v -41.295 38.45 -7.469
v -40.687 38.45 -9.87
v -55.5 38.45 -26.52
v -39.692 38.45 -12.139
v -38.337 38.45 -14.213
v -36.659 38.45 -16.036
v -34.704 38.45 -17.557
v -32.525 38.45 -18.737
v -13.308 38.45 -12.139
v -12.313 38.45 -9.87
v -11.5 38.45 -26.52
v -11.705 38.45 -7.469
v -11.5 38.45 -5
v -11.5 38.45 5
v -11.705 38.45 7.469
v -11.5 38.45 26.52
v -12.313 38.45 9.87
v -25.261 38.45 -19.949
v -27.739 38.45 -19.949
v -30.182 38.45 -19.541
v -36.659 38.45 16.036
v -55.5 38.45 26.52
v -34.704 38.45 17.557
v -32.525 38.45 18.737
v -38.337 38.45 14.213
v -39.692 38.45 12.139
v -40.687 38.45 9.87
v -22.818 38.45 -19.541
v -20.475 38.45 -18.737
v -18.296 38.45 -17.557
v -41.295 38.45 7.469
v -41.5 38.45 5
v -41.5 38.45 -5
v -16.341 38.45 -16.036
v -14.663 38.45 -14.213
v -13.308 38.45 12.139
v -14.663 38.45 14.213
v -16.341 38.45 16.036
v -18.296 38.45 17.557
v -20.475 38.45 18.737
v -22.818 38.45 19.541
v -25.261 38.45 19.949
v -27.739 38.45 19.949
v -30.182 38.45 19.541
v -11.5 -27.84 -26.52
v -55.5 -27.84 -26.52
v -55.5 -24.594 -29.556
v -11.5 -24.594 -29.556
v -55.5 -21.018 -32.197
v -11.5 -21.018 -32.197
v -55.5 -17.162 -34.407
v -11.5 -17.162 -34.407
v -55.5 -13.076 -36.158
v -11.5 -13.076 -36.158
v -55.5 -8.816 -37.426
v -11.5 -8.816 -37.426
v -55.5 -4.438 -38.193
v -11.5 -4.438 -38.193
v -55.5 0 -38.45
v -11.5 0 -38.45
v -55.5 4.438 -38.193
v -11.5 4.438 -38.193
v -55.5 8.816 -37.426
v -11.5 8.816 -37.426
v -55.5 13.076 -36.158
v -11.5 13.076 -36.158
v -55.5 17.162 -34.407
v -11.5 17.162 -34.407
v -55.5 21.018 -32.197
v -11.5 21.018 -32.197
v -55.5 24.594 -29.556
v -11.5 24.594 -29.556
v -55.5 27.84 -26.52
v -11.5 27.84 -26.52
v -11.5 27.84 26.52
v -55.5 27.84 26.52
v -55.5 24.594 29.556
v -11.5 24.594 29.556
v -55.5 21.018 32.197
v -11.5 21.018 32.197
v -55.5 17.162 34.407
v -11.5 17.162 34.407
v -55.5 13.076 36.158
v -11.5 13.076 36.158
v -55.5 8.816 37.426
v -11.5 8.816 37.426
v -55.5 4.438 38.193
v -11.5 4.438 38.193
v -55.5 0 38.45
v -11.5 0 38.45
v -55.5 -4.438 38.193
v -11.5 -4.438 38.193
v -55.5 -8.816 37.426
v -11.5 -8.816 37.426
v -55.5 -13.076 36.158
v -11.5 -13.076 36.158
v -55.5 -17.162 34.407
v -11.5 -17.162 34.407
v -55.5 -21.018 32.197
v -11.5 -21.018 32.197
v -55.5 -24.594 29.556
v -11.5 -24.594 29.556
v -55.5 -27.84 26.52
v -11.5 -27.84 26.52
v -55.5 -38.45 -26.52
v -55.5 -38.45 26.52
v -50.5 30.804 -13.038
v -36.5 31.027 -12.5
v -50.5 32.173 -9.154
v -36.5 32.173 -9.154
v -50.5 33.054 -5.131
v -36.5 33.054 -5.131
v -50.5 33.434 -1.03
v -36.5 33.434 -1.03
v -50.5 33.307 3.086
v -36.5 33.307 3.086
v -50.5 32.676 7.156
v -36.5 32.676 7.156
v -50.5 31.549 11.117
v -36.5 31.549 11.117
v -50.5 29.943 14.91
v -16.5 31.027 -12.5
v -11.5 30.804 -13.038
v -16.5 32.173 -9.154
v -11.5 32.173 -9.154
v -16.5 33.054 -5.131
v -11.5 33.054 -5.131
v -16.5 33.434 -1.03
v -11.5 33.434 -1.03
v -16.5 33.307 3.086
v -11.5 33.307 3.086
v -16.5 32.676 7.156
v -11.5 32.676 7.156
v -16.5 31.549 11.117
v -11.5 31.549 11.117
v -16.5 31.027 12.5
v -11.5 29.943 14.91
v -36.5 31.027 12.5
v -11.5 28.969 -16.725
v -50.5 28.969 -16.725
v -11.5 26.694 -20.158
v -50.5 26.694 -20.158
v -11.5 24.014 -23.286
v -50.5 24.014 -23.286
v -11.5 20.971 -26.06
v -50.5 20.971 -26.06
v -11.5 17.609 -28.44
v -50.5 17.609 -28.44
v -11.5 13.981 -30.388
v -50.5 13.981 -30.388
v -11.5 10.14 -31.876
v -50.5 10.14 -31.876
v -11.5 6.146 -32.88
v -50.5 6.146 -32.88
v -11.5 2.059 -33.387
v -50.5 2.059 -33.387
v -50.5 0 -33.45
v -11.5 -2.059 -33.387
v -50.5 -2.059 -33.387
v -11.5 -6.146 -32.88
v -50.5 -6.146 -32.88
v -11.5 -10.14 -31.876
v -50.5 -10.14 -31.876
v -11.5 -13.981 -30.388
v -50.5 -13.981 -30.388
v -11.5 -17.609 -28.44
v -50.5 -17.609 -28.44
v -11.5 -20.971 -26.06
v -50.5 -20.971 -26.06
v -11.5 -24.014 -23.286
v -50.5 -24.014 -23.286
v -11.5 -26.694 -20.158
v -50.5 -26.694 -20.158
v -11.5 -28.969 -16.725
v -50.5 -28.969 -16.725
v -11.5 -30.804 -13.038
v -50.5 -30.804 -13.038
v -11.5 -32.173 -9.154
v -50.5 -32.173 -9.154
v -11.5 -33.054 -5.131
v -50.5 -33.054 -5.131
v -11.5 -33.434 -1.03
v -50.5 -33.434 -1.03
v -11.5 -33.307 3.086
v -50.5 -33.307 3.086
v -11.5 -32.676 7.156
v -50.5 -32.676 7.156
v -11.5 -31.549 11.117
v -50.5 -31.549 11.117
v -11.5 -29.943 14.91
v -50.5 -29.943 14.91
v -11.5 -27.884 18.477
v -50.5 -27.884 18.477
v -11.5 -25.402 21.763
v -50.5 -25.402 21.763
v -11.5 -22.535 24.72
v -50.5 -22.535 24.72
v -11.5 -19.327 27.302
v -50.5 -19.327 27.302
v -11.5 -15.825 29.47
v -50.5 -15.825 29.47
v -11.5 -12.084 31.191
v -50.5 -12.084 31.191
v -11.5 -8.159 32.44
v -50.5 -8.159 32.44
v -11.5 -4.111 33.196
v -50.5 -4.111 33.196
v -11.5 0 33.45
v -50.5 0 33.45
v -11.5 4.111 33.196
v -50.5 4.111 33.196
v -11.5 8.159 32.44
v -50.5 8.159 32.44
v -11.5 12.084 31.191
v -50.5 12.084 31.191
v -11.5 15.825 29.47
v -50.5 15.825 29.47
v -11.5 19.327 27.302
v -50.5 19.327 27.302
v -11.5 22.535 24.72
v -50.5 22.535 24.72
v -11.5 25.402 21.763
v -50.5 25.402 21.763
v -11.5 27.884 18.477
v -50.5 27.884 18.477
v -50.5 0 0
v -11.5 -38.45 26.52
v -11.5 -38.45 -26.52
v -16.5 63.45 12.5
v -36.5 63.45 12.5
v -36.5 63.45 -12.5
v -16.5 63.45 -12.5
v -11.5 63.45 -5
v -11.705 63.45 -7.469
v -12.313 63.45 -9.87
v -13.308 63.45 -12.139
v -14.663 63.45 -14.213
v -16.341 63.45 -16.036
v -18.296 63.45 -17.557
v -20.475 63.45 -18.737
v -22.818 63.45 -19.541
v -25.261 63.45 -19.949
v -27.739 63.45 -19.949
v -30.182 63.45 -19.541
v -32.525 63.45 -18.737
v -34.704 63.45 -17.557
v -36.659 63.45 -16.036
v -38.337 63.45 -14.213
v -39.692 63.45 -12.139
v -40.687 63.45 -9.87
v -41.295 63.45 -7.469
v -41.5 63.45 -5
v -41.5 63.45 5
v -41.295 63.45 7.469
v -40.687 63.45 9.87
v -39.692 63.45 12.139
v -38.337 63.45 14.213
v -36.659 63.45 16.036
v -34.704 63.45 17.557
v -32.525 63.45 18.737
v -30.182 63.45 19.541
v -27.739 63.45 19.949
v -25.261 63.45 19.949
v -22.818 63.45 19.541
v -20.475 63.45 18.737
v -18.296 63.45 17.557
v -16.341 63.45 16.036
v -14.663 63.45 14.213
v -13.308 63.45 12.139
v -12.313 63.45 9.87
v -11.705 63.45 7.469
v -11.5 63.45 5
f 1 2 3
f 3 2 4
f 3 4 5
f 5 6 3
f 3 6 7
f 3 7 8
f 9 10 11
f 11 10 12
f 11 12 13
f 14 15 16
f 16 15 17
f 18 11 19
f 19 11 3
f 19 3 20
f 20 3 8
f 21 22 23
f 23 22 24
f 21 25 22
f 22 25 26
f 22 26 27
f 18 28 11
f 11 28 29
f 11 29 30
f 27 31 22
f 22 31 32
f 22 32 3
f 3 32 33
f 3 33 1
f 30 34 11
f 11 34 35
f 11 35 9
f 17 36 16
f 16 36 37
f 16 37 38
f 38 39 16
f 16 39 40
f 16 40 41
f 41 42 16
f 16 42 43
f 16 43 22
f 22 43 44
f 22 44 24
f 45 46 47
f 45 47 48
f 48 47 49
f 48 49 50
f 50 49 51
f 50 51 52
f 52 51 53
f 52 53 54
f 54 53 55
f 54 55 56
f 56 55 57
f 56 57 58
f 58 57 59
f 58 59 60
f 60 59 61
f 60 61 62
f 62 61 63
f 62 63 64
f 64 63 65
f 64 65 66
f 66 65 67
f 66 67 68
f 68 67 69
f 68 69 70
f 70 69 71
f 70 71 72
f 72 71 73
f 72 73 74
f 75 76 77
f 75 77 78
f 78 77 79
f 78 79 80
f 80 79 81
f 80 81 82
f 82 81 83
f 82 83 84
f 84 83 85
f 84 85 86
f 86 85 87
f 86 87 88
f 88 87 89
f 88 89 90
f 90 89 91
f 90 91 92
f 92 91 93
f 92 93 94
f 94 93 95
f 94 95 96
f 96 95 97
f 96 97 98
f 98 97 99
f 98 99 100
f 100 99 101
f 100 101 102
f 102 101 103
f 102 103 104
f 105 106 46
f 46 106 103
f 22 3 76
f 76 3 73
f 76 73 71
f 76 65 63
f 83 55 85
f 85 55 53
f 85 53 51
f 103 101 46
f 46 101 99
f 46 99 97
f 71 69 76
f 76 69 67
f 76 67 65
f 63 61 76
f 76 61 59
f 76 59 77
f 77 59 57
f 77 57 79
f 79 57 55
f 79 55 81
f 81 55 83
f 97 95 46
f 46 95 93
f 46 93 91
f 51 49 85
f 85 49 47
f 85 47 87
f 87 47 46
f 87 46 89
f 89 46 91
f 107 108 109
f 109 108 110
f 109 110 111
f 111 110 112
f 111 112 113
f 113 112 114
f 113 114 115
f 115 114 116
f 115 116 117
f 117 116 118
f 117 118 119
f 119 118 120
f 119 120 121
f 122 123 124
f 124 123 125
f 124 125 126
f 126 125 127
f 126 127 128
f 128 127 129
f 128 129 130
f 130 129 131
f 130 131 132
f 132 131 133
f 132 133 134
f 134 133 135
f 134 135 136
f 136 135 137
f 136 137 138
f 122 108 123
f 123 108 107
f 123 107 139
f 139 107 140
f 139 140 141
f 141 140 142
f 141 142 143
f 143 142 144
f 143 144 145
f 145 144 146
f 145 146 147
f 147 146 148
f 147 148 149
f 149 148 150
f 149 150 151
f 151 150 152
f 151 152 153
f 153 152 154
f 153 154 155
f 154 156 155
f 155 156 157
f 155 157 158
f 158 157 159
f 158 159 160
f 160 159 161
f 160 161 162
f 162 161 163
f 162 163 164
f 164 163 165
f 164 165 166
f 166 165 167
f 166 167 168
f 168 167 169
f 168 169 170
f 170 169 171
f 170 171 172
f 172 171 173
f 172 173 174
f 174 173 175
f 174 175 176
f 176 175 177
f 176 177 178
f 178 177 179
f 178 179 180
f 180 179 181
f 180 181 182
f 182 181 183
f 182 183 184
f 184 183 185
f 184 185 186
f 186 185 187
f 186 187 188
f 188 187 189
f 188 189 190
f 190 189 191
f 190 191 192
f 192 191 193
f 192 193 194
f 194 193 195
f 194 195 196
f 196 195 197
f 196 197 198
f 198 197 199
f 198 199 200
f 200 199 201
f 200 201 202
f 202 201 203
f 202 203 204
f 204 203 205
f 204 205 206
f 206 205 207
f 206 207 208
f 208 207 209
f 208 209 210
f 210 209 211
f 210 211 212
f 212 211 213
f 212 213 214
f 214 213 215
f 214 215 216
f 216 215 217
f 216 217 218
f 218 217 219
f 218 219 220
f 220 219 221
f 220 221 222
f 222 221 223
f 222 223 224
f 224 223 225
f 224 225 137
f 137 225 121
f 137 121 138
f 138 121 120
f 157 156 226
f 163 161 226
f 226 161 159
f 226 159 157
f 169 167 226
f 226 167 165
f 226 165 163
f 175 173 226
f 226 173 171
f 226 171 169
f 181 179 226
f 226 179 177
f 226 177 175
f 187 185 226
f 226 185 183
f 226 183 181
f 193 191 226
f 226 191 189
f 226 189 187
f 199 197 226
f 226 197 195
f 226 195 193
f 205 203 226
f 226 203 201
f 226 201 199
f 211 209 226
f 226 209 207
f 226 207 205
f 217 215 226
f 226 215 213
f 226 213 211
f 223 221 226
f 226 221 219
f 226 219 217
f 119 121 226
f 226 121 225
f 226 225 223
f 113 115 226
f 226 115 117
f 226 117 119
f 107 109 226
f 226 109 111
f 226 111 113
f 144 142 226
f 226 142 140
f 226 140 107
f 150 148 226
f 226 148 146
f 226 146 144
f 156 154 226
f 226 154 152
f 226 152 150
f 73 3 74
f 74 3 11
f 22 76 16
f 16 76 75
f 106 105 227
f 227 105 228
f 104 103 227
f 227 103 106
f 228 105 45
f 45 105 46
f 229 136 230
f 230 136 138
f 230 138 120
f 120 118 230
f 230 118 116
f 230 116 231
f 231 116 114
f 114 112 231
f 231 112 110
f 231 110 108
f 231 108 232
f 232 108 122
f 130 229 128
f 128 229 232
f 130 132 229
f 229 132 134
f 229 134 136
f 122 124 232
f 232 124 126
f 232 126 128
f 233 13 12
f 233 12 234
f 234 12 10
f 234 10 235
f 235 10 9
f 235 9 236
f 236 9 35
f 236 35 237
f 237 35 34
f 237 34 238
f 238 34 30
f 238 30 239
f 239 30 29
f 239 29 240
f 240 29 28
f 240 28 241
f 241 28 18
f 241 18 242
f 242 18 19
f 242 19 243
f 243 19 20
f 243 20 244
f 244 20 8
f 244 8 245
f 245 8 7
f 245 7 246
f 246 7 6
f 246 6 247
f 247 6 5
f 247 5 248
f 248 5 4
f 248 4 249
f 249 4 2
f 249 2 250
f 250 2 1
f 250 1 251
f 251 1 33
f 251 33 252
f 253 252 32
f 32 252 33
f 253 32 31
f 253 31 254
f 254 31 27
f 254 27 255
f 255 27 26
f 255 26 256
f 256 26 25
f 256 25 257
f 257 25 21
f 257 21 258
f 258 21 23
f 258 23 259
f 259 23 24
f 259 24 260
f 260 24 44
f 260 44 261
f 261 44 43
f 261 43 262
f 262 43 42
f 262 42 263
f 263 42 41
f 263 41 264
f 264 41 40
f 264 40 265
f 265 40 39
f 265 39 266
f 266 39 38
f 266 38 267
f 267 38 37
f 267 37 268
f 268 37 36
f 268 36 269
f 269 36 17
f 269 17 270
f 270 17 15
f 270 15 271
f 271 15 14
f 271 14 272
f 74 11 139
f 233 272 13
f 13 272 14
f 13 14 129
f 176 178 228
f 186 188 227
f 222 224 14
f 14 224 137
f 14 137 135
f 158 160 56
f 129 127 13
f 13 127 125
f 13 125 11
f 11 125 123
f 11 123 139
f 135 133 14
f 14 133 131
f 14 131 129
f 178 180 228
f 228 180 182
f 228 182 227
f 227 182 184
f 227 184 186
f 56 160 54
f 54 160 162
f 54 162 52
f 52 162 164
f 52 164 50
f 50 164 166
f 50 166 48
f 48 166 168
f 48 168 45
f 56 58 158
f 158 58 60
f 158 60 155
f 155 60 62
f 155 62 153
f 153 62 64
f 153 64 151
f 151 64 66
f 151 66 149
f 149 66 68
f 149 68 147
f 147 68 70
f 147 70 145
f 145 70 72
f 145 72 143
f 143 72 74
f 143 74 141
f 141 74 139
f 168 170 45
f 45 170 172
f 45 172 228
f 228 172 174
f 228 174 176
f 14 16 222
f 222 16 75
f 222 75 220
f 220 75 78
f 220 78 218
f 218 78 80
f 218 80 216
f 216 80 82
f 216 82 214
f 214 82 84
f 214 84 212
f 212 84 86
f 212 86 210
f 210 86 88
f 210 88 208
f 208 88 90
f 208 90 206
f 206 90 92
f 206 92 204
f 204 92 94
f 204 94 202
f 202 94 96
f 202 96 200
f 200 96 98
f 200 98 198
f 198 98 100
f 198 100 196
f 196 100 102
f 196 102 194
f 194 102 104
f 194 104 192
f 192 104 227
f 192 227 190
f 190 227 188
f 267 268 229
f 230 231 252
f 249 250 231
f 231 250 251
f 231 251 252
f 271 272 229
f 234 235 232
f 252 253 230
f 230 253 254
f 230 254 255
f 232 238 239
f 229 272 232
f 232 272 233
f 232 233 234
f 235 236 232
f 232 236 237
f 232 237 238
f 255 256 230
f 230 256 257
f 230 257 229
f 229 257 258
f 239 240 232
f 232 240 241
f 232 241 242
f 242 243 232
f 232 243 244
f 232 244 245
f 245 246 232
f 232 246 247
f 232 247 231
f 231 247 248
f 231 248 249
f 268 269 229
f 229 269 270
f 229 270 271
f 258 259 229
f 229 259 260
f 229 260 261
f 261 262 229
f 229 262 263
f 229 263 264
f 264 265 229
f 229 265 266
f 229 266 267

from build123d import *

# Parameters (mm, degrees)
SKETCH1_R                = 38.45
BOSS_EXTRUDE1_DEPTH      = 55.5
SHELL1_T                 = -5
BOSS_EXTRUDE2_REACH      = 104.334
BOSS_EXTRUDE2_END_RADIUS = 38.45
SKETCH2_W                = 111
SKETCH2_H                = 53.04
CUT_EXTRUDE1_REACH       = 104.334
CUT_EXTRUDE1_END_RADIUS  = 33.45
SKETCH3_W                = 20
SKETCH3_H                = 25
BOSS_EXTRUDE5_DEPTH      = 25
CUT_EXTRUDE2_REACH       = 124.239
SKETCH6_W                = 20
SKETCH6_H                = 25
CUT_EXTRUDE3_DEPTH       = 103.334073016
CUT_EXTRUDE3_DEPTH_BACK  = 103.334073016
SKETCH7_W                = 67
SKETCH7_H                = 76.9


with BuildPart() as part:
    # Sketch1 → Boss-Extrude1 (new, symmetric)
    with BuildSketch(Plane(origin=(0, 0, 0), x_dir=(0, 0, -1), z_dir=(1, 0, 0))):
        Circle(SKETCH1_R)
    extrude(amount=BOSS_EXTRUDE1_DEPTH, both=True)

    # Shell1
    shell1_openings = [part.faces().sort_by_distance(p)[0] for p in [
        (55.5, 0, 0),
    ]]
    offset(amount=SHELL1_T, openings=shell1_openings, kind=Kind.INTERSECTION)

    # Boss-Extrude2: up to this cylinder (the profile starts outside it)
    boss_extrude2_end = Plane(origin=(0, 0, 0), z_dir=(-1, 0, 0)) * Cylinder(BOSS_EXTRUDE2_END_RADIUS, 286.568, mode=Mode.PRIVATE)
    # Sketch2 → Boss-Extrude2 (add, up to the surface)
    with BuildSketch(Plane(origin=(0, 38.45, 0), x_dir=(1, 0, 0), z_dir=(0, 1, 0)), mode=Mode.PRIVATE) as boss_extrude2_sk1:
        Rectangle(SKETCH2_W, SKETCH2_H)
    boss_extrude2_tool1 = extrude(boss_extrude2_sk1.sketch, amount=-BOSS_EXTRUDE2_REACH, mode=Mode.PRIVATE) - boss_extrude2_end
    boss_extrude2 = boss_extrude2_tool1.solids().sort_by_distance((0, 38.45, 0))[0] + boss_extrude2_tool1.solids().sort_by_distance((0, 38.45, 0))[1]
    add(boss_extrude2)

    # Mirror1: Boss-Extrude2 across plane
    add(boss_extrude2.mirror(Plane.ZX))

    # Cut-Extrude1: up to this cylinder (the profile starts outside it)
    cut_extrude1_end = Plane(origin=(-26.5, 0, 0), z_dir=(-1, 0, 0)) * Cylinder(CUT_EXTRUDE1_END_RADIUS, 276.568, mode=Mode.PRIVATE)
    # Sketch3 → Cut-Extrude1 (cut, up to the surface)
    with BuildSketch(Plane(origin=(0, 38.45, 0), x_dir=(1, 0, 0), z_dir=(0, 1, 0)), mode=Mode.PRIVATE) as cut_extrude1_sk1:
        with Locations((-26.5, 0)):
            Rectangle(SKETCH3_W, SKETCH3_H)
    cut_extrude1_tool1 = extrude(cut_extrude1_sk1.sketch, amount=-CUT_EXTRUDE1_REACH, mode=Mode.PRIVATE) - cut_extrude1_end
    add(cut_extrude1_tool1.solids().sort_by_distance((-26.5, 38.45, 0))[0], mode=Mode.SUBTRACT)

    # Sketch5 → Boss-Extrude5 (add)
    with BuildSketch(Plane(origin=(0, 38.45, 0), x_dir=(1, 0, 0), z_dir=(0, 1, 0))):
        with BuildLine():
            Line((-11.5, 5), (-11.5, -5))
            ThreePointArc((-11.5, -5), (-26.5, -20), (-41.5, -5))
            Line((-41.5, -5), (-41.5, 5))
            ThreePointArc((-41.5, 5), (-26.5, 20), (-11.5, 5))
        make_face()
    extrude(amount=BOSS_EXTRUDE5_DEPTH)

    # Sketch6 → Cut-Extrude2 (cut, up to next)
    with BuildSketch(Plane(origin=(0, 63.45, 0), x_dir=(1, 0, 0), z_dir=(0, 1, 0)), mode=Mode.PRIVATE) as cut_extrude2_sk1:
        with Locations((-26.5, 0)):
            Rectangle(SKETCH6_W, SKETCH6_H)
    cut_extrude2_tool1 = extrude(cut_extrude2_sk1.sketch, amount=-CUT_EXTRUDE2_REACH, mode=Mode.PRIVATE) & part.part
    add(cut_extrude2_tool1.solids().sort_by_distance((-26.5, 63.45, 0))[0], mode=Mode.SUBTRACT)

    # Sketch7 → Cut-Extrude3 (cut, two sides: drawn at the far end of the back side and taken through both)
    with BuildSketch(Plane(origin=(0, 38.45, 0), x_dir=(1, 0, 0), z_dir=(0, 1, 0)).offset(-CUT_EXTRUDE3_DEPTH_BACK)):
        with Locations((22, 0)):
            Rectangle(SKETCH7_W, SKETCH7_H)
    extrude(amount=CUT_EXTRUDE3_DEPTH + CUT_EXTRUDE3_DEPTH_BACK, mode=Mode.SUBTRACT)


solid = part.part
